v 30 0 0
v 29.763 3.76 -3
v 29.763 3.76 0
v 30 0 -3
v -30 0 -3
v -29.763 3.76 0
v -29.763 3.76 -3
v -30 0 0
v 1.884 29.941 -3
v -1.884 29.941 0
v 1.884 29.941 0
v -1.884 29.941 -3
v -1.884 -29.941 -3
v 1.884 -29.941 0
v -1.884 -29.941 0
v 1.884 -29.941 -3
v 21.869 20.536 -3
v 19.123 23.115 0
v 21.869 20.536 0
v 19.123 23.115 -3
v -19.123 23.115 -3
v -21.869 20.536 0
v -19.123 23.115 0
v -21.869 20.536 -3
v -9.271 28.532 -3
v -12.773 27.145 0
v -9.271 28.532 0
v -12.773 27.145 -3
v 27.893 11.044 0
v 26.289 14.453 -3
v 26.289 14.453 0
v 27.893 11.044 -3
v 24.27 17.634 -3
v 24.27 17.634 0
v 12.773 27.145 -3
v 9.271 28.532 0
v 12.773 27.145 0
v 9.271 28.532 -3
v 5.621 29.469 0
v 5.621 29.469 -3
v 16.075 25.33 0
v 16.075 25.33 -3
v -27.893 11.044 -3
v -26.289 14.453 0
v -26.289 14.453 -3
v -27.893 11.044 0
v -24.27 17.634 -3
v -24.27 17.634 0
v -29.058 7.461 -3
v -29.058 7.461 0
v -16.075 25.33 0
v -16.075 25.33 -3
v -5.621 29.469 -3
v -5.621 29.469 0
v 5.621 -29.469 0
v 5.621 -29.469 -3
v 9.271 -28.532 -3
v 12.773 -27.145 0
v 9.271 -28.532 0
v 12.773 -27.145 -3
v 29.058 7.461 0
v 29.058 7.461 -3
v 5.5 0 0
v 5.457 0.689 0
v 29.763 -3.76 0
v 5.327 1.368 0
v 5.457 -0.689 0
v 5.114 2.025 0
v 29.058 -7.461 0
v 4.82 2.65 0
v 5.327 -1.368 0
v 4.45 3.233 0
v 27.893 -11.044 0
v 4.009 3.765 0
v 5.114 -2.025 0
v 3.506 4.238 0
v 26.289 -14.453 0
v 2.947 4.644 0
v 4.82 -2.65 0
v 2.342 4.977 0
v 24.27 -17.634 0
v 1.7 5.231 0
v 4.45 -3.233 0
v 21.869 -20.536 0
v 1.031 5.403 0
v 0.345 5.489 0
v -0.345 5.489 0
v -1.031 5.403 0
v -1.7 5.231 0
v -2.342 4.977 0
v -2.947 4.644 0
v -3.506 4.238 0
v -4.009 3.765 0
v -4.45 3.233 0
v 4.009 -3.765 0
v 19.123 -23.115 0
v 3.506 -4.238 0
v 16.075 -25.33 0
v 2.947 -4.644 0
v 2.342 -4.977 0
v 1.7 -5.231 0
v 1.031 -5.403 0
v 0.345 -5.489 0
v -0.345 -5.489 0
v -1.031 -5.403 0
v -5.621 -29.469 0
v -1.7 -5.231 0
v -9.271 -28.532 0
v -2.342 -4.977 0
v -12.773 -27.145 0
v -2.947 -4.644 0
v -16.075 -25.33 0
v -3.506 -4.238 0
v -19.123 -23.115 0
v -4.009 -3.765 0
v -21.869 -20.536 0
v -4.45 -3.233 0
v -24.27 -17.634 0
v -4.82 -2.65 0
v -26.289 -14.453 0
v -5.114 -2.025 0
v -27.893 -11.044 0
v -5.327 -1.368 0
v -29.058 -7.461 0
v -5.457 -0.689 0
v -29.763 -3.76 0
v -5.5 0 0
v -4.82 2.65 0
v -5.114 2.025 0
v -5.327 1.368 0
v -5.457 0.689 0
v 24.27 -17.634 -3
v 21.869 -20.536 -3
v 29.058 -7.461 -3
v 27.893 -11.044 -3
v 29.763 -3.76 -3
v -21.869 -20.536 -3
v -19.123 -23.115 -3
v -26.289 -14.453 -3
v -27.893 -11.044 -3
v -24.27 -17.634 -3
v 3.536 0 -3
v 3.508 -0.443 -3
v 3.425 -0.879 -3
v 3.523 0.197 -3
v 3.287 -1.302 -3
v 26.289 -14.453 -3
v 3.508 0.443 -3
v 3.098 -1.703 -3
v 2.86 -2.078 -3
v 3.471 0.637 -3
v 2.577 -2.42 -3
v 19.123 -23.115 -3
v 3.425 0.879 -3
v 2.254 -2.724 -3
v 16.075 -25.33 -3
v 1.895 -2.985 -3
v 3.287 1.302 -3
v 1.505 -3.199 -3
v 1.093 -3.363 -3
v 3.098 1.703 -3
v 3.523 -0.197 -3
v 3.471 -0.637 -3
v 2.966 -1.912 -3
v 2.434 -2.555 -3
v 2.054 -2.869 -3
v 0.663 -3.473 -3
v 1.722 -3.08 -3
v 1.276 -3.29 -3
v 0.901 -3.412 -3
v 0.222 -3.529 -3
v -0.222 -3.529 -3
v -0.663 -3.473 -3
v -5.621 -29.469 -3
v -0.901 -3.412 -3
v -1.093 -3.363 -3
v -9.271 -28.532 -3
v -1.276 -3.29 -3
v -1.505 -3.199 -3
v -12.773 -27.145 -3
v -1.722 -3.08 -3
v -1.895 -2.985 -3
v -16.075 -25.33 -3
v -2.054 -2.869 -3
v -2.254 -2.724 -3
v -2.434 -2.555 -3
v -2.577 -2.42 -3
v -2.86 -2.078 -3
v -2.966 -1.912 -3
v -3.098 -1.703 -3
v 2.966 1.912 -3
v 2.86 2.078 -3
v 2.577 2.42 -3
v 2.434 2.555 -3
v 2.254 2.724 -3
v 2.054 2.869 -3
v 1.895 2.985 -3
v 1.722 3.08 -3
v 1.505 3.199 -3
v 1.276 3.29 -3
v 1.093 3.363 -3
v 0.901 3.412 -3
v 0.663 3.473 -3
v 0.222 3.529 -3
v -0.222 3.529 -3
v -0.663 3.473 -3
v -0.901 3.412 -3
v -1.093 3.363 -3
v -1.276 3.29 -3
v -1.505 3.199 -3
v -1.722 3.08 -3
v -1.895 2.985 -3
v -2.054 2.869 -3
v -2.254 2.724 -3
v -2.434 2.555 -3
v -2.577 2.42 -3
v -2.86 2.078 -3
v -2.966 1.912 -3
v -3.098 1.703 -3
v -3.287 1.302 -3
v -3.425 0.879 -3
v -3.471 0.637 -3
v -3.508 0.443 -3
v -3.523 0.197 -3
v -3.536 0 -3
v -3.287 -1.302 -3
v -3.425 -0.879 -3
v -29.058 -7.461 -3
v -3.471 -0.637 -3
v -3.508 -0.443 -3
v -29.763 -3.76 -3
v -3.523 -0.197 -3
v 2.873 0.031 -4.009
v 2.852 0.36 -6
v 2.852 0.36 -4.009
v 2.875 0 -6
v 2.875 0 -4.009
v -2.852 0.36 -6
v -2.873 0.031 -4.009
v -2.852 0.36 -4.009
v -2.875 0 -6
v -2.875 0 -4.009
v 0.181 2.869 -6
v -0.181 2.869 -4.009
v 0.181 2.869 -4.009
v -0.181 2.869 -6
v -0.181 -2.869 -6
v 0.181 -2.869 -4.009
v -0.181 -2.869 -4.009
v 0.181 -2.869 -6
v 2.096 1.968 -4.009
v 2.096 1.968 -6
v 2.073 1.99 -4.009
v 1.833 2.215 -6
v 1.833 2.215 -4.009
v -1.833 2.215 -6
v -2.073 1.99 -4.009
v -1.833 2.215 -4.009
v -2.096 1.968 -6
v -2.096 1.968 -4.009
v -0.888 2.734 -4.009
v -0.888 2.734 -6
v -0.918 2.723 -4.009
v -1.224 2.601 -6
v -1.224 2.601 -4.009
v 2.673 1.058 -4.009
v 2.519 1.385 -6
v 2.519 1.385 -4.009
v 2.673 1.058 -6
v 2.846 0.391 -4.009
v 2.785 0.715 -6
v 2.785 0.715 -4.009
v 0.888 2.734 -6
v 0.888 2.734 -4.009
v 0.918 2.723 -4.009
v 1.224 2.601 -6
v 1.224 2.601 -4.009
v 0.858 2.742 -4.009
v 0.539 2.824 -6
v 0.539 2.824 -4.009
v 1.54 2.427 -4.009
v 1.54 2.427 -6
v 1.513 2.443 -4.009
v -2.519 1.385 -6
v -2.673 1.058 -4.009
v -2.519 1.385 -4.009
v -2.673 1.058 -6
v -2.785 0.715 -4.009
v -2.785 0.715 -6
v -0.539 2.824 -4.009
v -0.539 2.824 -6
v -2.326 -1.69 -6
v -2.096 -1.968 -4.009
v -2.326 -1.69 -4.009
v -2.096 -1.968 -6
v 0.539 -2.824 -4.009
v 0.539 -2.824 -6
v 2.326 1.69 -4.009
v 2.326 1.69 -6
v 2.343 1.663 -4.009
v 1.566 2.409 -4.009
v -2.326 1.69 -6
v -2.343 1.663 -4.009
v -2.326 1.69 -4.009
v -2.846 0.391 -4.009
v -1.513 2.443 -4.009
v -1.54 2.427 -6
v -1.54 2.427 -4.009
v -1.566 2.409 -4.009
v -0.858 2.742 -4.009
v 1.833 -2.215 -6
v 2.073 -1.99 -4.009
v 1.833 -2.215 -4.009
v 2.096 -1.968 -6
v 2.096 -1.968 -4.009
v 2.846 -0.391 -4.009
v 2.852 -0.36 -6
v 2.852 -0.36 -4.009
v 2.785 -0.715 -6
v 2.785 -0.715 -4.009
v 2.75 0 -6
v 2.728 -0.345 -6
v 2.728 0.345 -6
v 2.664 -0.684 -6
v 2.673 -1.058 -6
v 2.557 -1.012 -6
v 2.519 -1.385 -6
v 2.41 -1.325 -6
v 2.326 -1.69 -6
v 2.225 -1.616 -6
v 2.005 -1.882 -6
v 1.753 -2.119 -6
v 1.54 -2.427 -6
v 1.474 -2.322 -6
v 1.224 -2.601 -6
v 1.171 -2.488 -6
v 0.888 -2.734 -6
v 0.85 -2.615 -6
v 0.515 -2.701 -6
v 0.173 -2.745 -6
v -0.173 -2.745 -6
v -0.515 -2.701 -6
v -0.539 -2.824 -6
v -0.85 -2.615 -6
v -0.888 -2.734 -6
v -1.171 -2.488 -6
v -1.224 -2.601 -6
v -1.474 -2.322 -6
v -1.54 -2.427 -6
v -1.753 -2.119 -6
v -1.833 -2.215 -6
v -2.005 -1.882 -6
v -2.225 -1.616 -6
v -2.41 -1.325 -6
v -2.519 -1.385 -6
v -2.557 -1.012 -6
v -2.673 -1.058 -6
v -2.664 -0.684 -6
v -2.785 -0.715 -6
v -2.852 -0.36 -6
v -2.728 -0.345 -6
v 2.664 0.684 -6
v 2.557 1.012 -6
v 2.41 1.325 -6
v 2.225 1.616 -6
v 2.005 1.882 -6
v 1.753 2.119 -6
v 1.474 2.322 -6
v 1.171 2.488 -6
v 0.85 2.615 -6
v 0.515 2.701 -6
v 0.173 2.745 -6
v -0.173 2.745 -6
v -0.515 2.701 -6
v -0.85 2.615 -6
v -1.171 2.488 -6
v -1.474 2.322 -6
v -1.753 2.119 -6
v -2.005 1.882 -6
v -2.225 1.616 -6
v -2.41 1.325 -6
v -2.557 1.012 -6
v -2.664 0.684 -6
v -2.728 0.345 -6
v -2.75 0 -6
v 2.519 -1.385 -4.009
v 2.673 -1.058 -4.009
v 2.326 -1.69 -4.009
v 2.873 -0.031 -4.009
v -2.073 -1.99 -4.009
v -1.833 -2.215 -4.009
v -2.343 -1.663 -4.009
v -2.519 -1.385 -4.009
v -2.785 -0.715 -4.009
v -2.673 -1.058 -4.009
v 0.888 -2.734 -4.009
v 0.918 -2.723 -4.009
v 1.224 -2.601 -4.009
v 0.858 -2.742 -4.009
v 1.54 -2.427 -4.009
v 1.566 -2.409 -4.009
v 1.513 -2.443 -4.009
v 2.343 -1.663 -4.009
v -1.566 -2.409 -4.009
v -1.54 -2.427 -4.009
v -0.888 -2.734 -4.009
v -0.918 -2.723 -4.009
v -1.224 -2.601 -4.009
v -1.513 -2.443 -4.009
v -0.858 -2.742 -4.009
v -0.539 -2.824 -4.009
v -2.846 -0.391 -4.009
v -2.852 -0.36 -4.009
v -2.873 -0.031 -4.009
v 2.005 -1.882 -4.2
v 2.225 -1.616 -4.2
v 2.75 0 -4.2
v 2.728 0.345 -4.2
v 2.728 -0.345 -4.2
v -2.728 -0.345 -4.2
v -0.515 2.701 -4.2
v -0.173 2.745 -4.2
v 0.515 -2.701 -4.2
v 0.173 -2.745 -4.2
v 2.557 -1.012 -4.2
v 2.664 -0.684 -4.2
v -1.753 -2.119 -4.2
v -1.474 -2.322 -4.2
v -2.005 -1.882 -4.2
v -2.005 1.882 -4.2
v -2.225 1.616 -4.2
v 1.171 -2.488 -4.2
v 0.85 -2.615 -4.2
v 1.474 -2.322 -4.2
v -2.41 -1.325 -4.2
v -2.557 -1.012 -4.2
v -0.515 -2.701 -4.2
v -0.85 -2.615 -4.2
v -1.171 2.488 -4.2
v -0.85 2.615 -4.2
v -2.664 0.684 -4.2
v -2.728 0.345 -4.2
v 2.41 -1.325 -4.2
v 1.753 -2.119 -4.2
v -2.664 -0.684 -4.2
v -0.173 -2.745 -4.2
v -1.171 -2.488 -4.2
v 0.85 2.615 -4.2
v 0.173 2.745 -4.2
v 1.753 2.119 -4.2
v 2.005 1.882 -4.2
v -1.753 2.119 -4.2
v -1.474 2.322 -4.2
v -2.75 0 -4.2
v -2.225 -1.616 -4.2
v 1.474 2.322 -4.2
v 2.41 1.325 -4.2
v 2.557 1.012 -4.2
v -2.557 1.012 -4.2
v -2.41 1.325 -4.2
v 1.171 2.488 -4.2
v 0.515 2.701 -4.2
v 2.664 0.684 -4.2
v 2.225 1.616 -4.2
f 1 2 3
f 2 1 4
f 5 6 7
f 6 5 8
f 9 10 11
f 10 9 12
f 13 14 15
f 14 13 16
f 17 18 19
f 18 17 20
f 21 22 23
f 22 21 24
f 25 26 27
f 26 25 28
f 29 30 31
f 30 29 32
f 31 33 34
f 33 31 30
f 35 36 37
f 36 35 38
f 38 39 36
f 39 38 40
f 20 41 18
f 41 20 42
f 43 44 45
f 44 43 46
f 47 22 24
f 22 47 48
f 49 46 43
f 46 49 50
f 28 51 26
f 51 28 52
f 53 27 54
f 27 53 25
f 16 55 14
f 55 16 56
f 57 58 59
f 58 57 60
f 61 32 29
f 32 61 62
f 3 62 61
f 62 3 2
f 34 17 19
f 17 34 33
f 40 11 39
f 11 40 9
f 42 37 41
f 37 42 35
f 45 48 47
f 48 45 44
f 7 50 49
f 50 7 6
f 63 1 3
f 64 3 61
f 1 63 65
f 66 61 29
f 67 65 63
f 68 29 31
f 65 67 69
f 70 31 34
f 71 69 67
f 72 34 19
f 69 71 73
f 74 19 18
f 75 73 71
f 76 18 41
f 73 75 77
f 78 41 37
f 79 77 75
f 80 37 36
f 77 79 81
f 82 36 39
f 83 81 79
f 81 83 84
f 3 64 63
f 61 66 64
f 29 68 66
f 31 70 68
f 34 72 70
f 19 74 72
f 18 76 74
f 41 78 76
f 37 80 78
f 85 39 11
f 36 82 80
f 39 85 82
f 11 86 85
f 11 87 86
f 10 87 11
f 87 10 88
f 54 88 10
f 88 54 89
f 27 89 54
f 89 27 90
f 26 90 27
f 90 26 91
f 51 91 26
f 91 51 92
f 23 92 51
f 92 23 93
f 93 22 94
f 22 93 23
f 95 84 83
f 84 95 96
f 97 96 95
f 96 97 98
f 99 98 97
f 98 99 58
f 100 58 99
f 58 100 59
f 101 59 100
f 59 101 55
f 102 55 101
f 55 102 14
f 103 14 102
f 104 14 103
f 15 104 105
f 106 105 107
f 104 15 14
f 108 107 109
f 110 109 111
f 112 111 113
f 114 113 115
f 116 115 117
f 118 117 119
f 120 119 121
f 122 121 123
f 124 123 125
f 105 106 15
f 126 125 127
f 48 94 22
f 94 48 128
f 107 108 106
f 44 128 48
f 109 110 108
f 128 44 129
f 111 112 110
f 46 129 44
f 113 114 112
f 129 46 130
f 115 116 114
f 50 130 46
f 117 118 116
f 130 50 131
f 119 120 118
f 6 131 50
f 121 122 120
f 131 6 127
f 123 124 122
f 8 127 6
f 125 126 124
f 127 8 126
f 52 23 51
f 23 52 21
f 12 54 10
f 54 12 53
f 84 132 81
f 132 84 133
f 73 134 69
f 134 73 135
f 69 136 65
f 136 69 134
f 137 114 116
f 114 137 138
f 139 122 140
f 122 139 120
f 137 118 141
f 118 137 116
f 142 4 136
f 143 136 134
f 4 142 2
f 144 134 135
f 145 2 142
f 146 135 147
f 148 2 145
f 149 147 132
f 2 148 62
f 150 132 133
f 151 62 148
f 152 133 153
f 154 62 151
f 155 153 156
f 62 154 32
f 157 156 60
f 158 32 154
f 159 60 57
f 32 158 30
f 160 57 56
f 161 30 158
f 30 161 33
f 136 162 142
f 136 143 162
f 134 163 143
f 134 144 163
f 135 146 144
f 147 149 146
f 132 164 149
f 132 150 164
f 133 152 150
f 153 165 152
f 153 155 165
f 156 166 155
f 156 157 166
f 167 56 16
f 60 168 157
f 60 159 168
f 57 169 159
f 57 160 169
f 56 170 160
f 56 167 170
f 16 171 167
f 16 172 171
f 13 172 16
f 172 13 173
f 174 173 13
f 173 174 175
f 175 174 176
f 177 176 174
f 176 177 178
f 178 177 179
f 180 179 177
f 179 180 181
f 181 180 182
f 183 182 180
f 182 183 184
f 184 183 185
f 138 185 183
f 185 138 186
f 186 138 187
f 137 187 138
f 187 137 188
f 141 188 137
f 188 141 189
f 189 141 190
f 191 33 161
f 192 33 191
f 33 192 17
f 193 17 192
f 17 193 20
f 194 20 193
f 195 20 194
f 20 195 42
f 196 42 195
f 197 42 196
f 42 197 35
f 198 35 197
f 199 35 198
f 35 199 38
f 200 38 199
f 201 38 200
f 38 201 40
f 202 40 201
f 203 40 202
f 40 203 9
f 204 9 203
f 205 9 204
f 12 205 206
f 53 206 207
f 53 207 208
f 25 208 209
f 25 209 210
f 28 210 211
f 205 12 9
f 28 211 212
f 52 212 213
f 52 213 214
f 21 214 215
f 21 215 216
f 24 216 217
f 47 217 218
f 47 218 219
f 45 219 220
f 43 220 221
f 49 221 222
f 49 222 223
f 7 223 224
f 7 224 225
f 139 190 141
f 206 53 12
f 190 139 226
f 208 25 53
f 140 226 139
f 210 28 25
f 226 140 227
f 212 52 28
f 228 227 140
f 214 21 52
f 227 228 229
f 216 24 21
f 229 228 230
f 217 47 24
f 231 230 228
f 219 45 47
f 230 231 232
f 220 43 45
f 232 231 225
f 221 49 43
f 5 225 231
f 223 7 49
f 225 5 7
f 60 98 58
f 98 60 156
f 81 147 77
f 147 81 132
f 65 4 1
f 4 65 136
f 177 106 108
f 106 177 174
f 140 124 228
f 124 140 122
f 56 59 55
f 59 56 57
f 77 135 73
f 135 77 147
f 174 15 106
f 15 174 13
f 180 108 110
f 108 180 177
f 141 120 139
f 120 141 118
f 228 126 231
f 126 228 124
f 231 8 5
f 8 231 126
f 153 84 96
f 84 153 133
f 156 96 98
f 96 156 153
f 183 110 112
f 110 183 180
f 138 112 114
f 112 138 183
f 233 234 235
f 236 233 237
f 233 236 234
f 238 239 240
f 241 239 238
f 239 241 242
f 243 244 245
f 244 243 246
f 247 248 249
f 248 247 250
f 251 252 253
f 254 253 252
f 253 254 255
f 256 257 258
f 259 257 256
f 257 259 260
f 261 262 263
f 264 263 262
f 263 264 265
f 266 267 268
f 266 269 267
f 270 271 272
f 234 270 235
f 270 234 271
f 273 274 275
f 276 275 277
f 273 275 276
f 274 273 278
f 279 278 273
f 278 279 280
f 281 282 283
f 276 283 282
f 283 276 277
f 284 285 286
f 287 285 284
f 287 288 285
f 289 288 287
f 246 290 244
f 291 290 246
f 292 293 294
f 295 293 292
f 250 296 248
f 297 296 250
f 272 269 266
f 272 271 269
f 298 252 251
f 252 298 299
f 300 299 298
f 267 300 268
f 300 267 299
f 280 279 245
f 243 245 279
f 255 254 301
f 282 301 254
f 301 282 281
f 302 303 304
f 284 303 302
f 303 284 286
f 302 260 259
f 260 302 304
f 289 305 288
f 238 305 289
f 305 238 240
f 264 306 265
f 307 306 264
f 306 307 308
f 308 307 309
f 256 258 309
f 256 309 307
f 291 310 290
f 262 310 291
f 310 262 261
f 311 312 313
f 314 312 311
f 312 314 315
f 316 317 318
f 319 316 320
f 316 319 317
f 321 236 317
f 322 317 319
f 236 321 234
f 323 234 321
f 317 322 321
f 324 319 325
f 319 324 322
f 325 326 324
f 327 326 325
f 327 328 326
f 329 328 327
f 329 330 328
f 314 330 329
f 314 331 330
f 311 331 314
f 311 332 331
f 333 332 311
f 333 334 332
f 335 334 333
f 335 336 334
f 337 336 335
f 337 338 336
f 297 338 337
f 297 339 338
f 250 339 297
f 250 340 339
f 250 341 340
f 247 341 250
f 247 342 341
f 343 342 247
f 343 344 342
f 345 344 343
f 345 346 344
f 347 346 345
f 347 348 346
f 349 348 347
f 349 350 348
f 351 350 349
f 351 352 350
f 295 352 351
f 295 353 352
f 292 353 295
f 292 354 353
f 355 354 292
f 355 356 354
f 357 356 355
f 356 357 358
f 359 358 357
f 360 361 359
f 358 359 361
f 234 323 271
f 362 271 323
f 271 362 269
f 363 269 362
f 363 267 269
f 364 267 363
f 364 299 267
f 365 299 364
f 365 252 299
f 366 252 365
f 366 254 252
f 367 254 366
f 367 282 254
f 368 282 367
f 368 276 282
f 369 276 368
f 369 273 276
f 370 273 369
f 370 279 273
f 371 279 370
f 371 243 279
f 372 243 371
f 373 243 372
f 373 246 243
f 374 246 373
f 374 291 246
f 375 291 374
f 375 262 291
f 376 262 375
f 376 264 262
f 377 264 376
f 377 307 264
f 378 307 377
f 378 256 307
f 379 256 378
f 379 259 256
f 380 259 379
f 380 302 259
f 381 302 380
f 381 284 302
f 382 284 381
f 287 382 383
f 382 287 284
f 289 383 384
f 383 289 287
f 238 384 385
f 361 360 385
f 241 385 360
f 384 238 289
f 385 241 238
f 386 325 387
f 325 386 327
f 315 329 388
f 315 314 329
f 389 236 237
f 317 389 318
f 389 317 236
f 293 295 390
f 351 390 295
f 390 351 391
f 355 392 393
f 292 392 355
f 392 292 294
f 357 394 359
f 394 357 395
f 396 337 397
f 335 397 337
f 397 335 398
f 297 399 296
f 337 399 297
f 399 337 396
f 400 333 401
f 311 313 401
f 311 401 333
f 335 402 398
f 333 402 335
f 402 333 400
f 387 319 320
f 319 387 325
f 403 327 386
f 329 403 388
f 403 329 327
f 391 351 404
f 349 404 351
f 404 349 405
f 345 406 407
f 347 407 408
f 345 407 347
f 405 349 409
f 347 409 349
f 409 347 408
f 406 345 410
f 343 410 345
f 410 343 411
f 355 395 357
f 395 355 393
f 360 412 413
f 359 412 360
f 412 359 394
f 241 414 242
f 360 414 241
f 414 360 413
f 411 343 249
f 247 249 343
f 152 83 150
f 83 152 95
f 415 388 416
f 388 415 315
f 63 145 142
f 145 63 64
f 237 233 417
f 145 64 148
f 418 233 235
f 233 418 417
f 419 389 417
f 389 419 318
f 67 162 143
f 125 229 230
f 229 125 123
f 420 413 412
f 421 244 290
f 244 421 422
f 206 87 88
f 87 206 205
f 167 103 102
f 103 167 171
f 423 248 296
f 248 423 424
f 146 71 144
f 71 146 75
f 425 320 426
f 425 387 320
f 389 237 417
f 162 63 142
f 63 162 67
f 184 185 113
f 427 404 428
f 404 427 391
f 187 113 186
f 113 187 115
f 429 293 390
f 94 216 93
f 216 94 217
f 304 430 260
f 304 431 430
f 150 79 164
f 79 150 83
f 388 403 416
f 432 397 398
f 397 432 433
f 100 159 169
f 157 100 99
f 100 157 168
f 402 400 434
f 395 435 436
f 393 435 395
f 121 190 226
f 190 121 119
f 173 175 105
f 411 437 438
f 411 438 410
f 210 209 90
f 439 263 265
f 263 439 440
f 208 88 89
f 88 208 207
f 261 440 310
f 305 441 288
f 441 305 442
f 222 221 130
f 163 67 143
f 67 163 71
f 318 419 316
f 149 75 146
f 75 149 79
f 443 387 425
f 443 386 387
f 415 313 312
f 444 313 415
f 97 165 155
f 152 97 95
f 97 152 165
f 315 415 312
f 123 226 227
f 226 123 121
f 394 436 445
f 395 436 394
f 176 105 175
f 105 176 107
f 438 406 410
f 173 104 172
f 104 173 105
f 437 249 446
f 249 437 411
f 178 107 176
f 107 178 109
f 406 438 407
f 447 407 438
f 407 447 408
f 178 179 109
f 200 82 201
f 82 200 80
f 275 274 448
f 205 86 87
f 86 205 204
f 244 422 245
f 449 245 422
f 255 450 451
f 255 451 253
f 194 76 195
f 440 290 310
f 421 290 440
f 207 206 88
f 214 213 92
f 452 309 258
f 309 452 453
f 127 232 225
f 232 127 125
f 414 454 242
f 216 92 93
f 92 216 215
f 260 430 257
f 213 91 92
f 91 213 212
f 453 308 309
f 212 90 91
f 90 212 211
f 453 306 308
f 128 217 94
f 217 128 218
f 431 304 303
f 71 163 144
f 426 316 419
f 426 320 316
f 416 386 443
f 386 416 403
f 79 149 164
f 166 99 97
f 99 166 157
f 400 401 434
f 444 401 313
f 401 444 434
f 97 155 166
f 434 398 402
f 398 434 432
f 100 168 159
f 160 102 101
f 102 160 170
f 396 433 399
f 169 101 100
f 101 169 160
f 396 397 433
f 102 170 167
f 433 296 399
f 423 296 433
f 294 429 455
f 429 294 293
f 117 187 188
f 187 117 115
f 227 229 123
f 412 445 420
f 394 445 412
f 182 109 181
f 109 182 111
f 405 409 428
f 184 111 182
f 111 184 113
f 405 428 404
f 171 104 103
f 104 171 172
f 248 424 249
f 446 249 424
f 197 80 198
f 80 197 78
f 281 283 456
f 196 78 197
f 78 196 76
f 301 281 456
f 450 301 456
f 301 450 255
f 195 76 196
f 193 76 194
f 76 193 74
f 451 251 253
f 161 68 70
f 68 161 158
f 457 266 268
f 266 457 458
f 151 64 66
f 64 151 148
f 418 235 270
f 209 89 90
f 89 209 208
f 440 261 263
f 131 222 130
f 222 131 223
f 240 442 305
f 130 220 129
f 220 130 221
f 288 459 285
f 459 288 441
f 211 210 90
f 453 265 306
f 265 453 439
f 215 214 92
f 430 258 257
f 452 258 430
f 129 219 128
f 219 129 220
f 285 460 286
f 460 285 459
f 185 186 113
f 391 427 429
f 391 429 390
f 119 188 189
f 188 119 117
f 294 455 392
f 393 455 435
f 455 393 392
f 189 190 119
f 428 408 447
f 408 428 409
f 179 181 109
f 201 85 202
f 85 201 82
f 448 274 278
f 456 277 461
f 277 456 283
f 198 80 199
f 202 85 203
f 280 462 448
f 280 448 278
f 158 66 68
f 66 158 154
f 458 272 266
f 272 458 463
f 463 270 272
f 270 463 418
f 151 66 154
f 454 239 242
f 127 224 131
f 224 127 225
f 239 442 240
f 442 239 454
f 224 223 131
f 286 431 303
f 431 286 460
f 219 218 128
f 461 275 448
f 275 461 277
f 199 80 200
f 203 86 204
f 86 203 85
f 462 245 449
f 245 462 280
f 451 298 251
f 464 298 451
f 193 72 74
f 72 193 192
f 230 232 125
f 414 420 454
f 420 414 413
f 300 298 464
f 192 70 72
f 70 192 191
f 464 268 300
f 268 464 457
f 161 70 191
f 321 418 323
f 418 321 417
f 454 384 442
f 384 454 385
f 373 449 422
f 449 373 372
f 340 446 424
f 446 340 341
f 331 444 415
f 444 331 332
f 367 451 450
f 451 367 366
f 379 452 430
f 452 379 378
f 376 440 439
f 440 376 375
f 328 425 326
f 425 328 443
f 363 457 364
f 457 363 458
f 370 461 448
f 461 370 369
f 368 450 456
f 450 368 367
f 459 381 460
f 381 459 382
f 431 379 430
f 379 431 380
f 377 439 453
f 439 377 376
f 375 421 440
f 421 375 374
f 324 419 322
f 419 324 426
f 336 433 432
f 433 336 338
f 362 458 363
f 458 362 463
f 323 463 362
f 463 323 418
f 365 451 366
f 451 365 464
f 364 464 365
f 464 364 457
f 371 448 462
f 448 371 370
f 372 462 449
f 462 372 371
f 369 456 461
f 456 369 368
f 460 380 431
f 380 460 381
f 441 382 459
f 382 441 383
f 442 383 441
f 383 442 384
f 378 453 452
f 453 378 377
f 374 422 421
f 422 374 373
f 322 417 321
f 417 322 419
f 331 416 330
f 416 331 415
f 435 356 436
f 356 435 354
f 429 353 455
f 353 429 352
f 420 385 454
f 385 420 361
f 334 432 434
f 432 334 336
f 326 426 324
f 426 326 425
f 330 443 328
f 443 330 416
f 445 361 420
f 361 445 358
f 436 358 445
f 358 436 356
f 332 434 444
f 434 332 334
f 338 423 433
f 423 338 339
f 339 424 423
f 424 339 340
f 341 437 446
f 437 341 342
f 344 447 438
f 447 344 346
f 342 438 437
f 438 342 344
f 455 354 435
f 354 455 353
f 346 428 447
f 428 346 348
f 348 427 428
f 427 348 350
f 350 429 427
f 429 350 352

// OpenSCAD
$fn = 50;


difference() {
	union() {
		translate(v = [0, 0, -3.0000000000]) {
			cylinder(h = 3, r = 30.0000000000);
		}
		translate(v = [0, 0, -6.0000000000]) {
			cylinder(h = 6, r = 2.8750000000);
		}
	}
	union() {
		translate(v = [0, 0, 0]) {
			rotate(a = [0, 0, 0]) {
				difference() {
					union() {
						translate(v = [0, 0, -6.0000000000]) {
							cylinder(h = 6, r = 2.2500000000);
						}
						translate(v = [0, 0, -4.2000000000]) {
							cylinder(h = 4.2000000000, r1 = 2.7500000000, r2 = 5.5000000000);
						}
						translate(v = [0, 0, -6.0000000000]) {
							cylinder(h = 6, r = 2.7500000000);
						}
						translate(v = [0, 0, -6.0000000000]) {
							cylinder(h = 6, r = 2.2500000000);
						}
					}
					union();
				}
			}
		}
	}
}
